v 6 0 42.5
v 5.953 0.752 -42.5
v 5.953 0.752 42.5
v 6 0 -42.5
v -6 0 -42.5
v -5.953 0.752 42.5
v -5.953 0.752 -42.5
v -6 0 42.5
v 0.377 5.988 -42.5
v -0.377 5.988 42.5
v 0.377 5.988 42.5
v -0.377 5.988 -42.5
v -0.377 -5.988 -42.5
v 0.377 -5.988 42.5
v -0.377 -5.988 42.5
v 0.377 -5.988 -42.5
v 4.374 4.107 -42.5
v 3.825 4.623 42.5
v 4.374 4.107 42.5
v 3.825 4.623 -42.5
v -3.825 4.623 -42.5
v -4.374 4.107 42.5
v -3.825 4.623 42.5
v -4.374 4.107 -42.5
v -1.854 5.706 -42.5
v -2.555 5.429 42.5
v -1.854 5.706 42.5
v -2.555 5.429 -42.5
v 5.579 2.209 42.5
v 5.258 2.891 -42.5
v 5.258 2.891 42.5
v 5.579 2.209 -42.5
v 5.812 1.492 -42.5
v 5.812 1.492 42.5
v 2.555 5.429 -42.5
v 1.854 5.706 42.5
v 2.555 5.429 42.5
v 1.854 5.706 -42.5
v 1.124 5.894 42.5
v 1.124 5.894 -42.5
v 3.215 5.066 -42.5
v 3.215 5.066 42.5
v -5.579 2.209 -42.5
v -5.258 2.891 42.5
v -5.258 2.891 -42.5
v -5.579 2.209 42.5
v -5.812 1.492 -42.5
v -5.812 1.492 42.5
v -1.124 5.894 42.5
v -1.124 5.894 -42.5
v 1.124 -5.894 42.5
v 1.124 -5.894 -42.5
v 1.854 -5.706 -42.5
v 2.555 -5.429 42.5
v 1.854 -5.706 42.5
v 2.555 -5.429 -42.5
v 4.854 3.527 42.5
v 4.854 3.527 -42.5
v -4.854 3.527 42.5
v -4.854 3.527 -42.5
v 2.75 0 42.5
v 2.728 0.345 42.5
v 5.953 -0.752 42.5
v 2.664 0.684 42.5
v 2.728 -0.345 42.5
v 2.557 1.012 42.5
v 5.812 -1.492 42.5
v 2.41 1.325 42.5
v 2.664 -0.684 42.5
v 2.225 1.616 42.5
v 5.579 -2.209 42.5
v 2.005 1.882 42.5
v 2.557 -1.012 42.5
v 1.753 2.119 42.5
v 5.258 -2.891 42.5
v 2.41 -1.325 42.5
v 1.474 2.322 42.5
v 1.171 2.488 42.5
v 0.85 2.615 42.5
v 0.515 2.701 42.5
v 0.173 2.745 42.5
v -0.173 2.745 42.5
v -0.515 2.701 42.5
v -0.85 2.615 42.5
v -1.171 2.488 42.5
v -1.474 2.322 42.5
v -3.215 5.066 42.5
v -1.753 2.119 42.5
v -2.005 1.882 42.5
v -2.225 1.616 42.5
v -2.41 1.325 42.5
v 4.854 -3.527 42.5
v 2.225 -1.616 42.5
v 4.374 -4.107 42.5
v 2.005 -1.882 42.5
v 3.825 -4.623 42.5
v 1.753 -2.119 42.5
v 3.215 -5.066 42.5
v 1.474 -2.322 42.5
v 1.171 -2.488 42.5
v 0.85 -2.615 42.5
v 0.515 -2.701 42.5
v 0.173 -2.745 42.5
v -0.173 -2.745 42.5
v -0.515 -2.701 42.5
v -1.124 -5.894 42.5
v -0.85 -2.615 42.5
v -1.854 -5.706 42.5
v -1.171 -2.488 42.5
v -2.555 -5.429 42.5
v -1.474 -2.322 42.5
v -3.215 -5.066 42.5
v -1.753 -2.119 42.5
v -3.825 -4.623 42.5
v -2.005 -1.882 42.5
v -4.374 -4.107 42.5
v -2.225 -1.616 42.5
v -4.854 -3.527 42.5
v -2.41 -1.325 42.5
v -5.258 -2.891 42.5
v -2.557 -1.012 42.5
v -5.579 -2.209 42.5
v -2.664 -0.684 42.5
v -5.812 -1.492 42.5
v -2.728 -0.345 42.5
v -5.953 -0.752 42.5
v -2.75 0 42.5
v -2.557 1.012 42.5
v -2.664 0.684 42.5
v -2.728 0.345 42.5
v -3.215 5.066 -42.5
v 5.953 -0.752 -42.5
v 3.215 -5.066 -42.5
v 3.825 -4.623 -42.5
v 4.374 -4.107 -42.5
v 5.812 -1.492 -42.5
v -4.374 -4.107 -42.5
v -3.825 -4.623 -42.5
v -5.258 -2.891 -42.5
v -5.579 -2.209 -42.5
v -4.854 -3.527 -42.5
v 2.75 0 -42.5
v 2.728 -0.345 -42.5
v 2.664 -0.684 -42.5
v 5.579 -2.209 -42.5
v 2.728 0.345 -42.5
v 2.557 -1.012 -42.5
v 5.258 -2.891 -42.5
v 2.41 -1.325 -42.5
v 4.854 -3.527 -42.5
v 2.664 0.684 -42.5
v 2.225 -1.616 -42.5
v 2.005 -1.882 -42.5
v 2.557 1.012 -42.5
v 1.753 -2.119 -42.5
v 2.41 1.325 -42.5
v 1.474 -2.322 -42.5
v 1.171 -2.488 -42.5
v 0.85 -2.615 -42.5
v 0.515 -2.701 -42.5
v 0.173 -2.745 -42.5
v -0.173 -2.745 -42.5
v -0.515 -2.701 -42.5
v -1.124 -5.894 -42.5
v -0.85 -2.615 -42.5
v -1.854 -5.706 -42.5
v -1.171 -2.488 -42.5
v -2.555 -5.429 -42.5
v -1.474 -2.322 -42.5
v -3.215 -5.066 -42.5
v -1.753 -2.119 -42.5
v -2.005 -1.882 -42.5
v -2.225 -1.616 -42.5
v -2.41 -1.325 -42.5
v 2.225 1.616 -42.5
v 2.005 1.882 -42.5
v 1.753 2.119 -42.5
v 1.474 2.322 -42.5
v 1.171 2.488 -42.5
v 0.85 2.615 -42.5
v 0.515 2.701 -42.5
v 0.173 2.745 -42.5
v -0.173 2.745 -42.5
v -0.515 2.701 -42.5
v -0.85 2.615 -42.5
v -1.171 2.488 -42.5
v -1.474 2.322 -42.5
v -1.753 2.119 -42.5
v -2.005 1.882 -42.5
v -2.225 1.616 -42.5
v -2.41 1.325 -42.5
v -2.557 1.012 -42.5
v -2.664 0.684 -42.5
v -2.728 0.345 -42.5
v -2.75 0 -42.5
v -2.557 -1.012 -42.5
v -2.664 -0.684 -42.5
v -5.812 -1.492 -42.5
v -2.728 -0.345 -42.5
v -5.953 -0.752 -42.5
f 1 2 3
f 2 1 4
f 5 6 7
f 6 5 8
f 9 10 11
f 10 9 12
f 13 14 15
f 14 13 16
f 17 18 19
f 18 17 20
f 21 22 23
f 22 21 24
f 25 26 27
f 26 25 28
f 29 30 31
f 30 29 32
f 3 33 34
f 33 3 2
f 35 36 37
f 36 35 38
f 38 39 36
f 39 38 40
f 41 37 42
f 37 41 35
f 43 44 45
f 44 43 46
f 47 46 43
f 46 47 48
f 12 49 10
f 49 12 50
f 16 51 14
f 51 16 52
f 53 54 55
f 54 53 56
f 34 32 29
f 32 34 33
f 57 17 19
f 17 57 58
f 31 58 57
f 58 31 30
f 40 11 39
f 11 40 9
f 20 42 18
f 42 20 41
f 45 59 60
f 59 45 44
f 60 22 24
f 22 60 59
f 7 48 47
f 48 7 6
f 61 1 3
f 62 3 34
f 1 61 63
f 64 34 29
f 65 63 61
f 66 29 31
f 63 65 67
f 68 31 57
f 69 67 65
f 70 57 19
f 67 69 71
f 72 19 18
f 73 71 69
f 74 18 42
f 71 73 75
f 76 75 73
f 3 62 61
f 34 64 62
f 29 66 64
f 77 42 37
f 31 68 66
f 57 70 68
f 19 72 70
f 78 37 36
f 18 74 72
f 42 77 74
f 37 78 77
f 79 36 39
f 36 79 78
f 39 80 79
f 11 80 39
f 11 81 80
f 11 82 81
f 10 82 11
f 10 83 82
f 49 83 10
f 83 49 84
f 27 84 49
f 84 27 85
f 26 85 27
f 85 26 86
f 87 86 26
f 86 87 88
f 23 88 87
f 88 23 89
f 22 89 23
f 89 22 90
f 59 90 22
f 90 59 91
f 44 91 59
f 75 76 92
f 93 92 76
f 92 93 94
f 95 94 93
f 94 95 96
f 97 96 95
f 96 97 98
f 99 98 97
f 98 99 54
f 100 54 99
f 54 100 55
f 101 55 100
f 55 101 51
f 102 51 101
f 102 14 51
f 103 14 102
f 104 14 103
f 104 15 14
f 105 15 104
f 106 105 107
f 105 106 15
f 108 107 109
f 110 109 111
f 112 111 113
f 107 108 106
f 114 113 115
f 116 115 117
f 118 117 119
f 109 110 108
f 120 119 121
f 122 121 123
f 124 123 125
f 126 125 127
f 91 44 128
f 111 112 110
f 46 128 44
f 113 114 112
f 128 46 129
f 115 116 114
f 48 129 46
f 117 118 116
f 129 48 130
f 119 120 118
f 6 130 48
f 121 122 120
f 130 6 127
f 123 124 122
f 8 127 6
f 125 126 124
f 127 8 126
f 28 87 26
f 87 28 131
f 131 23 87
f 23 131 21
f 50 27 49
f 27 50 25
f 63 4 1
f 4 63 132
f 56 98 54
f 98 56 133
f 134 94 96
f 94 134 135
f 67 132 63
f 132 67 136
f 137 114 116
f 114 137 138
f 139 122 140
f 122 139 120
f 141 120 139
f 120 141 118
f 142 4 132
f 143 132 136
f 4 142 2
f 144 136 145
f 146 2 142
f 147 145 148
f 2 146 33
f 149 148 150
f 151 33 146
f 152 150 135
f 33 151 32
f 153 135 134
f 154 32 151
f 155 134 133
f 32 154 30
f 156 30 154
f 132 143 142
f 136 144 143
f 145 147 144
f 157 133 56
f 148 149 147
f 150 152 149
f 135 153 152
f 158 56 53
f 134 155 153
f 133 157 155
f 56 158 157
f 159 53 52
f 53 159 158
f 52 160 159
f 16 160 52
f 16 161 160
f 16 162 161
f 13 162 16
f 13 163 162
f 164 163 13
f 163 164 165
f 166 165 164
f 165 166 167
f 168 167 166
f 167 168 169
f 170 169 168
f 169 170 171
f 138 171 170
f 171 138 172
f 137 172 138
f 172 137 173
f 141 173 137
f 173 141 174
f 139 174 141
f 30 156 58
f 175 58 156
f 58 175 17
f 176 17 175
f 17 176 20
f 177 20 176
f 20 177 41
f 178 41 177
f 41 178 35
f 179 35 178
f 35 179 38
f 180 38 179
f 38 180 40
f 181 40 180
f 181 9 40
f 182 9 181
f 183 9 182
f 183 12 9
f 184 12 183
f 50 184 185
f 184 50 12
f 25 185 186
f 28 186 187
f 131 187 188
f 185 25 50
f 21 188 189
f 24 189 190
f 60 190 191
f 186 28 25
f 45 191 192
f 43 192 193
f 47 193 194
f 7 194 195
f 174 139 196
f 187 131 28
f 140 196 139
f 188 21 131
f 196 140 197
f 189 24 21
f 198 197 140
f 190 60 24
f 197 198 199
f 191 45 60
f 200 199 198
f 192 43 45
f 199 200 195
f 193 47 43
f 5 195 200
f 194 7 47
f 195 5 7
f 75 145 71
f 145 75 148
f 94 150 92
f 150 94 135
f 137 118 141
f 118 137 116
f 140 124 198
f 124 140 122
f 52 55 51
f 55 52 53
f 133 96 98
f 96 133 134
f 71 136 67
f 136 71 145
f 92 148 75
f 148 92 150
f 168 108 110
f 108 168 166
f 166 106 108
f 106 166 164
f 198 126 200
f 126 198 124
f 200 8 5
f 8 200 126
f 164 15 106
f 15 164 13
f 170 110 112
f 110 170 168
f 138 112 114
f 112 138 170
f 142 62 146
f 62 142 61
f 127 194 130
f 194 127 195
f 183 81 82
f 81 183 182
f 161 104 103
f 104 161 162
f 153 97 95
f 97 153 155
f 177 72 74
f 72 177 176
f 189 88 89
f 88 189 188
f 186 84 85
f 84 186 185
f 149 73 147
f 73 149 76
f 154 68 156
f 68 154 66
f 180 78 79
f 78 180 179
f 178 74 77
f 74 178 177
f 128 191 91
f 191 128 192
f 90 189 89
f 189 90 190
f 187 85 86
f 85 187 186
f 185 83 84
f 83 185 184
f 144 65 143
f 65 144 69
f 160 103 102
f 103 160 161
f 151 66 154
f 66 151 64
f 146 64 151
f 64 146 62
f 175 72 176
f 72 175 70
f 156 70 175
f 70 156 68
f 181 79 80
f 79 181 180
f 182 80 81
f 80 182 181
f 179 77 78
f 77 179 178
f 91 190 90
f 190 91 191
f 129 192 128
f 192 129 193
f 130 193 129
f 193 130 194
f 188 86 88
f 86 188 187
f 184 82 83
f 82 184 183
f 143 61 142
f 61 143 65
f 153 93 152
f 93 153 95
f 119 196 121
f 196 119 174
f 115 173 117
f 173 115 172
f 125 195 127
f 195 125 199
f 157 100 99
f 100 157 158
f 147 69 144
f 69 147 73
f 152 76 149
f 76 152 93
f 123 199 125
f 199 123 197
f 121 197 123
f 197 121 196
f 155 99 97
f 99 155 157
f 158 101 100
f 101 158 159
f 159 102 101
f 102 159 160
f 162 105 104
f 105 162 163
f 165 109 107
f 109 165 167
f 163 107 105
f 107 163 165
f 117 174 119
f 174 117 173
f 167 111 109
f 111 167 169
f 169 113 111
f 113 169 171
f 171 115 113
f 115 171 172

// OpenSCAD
$fn = 50;


difference() {
	union() {
		translate(v = [0, 0, -42.5000000000]) {
			cylinder(h = 85, r = 6.0000000000);
		}
	}
	union() {
		translate(v = [0, 0, -100.0000000000]) {
			cylinder(h = 200, r = 2.7500000000);
		}
	}
}
